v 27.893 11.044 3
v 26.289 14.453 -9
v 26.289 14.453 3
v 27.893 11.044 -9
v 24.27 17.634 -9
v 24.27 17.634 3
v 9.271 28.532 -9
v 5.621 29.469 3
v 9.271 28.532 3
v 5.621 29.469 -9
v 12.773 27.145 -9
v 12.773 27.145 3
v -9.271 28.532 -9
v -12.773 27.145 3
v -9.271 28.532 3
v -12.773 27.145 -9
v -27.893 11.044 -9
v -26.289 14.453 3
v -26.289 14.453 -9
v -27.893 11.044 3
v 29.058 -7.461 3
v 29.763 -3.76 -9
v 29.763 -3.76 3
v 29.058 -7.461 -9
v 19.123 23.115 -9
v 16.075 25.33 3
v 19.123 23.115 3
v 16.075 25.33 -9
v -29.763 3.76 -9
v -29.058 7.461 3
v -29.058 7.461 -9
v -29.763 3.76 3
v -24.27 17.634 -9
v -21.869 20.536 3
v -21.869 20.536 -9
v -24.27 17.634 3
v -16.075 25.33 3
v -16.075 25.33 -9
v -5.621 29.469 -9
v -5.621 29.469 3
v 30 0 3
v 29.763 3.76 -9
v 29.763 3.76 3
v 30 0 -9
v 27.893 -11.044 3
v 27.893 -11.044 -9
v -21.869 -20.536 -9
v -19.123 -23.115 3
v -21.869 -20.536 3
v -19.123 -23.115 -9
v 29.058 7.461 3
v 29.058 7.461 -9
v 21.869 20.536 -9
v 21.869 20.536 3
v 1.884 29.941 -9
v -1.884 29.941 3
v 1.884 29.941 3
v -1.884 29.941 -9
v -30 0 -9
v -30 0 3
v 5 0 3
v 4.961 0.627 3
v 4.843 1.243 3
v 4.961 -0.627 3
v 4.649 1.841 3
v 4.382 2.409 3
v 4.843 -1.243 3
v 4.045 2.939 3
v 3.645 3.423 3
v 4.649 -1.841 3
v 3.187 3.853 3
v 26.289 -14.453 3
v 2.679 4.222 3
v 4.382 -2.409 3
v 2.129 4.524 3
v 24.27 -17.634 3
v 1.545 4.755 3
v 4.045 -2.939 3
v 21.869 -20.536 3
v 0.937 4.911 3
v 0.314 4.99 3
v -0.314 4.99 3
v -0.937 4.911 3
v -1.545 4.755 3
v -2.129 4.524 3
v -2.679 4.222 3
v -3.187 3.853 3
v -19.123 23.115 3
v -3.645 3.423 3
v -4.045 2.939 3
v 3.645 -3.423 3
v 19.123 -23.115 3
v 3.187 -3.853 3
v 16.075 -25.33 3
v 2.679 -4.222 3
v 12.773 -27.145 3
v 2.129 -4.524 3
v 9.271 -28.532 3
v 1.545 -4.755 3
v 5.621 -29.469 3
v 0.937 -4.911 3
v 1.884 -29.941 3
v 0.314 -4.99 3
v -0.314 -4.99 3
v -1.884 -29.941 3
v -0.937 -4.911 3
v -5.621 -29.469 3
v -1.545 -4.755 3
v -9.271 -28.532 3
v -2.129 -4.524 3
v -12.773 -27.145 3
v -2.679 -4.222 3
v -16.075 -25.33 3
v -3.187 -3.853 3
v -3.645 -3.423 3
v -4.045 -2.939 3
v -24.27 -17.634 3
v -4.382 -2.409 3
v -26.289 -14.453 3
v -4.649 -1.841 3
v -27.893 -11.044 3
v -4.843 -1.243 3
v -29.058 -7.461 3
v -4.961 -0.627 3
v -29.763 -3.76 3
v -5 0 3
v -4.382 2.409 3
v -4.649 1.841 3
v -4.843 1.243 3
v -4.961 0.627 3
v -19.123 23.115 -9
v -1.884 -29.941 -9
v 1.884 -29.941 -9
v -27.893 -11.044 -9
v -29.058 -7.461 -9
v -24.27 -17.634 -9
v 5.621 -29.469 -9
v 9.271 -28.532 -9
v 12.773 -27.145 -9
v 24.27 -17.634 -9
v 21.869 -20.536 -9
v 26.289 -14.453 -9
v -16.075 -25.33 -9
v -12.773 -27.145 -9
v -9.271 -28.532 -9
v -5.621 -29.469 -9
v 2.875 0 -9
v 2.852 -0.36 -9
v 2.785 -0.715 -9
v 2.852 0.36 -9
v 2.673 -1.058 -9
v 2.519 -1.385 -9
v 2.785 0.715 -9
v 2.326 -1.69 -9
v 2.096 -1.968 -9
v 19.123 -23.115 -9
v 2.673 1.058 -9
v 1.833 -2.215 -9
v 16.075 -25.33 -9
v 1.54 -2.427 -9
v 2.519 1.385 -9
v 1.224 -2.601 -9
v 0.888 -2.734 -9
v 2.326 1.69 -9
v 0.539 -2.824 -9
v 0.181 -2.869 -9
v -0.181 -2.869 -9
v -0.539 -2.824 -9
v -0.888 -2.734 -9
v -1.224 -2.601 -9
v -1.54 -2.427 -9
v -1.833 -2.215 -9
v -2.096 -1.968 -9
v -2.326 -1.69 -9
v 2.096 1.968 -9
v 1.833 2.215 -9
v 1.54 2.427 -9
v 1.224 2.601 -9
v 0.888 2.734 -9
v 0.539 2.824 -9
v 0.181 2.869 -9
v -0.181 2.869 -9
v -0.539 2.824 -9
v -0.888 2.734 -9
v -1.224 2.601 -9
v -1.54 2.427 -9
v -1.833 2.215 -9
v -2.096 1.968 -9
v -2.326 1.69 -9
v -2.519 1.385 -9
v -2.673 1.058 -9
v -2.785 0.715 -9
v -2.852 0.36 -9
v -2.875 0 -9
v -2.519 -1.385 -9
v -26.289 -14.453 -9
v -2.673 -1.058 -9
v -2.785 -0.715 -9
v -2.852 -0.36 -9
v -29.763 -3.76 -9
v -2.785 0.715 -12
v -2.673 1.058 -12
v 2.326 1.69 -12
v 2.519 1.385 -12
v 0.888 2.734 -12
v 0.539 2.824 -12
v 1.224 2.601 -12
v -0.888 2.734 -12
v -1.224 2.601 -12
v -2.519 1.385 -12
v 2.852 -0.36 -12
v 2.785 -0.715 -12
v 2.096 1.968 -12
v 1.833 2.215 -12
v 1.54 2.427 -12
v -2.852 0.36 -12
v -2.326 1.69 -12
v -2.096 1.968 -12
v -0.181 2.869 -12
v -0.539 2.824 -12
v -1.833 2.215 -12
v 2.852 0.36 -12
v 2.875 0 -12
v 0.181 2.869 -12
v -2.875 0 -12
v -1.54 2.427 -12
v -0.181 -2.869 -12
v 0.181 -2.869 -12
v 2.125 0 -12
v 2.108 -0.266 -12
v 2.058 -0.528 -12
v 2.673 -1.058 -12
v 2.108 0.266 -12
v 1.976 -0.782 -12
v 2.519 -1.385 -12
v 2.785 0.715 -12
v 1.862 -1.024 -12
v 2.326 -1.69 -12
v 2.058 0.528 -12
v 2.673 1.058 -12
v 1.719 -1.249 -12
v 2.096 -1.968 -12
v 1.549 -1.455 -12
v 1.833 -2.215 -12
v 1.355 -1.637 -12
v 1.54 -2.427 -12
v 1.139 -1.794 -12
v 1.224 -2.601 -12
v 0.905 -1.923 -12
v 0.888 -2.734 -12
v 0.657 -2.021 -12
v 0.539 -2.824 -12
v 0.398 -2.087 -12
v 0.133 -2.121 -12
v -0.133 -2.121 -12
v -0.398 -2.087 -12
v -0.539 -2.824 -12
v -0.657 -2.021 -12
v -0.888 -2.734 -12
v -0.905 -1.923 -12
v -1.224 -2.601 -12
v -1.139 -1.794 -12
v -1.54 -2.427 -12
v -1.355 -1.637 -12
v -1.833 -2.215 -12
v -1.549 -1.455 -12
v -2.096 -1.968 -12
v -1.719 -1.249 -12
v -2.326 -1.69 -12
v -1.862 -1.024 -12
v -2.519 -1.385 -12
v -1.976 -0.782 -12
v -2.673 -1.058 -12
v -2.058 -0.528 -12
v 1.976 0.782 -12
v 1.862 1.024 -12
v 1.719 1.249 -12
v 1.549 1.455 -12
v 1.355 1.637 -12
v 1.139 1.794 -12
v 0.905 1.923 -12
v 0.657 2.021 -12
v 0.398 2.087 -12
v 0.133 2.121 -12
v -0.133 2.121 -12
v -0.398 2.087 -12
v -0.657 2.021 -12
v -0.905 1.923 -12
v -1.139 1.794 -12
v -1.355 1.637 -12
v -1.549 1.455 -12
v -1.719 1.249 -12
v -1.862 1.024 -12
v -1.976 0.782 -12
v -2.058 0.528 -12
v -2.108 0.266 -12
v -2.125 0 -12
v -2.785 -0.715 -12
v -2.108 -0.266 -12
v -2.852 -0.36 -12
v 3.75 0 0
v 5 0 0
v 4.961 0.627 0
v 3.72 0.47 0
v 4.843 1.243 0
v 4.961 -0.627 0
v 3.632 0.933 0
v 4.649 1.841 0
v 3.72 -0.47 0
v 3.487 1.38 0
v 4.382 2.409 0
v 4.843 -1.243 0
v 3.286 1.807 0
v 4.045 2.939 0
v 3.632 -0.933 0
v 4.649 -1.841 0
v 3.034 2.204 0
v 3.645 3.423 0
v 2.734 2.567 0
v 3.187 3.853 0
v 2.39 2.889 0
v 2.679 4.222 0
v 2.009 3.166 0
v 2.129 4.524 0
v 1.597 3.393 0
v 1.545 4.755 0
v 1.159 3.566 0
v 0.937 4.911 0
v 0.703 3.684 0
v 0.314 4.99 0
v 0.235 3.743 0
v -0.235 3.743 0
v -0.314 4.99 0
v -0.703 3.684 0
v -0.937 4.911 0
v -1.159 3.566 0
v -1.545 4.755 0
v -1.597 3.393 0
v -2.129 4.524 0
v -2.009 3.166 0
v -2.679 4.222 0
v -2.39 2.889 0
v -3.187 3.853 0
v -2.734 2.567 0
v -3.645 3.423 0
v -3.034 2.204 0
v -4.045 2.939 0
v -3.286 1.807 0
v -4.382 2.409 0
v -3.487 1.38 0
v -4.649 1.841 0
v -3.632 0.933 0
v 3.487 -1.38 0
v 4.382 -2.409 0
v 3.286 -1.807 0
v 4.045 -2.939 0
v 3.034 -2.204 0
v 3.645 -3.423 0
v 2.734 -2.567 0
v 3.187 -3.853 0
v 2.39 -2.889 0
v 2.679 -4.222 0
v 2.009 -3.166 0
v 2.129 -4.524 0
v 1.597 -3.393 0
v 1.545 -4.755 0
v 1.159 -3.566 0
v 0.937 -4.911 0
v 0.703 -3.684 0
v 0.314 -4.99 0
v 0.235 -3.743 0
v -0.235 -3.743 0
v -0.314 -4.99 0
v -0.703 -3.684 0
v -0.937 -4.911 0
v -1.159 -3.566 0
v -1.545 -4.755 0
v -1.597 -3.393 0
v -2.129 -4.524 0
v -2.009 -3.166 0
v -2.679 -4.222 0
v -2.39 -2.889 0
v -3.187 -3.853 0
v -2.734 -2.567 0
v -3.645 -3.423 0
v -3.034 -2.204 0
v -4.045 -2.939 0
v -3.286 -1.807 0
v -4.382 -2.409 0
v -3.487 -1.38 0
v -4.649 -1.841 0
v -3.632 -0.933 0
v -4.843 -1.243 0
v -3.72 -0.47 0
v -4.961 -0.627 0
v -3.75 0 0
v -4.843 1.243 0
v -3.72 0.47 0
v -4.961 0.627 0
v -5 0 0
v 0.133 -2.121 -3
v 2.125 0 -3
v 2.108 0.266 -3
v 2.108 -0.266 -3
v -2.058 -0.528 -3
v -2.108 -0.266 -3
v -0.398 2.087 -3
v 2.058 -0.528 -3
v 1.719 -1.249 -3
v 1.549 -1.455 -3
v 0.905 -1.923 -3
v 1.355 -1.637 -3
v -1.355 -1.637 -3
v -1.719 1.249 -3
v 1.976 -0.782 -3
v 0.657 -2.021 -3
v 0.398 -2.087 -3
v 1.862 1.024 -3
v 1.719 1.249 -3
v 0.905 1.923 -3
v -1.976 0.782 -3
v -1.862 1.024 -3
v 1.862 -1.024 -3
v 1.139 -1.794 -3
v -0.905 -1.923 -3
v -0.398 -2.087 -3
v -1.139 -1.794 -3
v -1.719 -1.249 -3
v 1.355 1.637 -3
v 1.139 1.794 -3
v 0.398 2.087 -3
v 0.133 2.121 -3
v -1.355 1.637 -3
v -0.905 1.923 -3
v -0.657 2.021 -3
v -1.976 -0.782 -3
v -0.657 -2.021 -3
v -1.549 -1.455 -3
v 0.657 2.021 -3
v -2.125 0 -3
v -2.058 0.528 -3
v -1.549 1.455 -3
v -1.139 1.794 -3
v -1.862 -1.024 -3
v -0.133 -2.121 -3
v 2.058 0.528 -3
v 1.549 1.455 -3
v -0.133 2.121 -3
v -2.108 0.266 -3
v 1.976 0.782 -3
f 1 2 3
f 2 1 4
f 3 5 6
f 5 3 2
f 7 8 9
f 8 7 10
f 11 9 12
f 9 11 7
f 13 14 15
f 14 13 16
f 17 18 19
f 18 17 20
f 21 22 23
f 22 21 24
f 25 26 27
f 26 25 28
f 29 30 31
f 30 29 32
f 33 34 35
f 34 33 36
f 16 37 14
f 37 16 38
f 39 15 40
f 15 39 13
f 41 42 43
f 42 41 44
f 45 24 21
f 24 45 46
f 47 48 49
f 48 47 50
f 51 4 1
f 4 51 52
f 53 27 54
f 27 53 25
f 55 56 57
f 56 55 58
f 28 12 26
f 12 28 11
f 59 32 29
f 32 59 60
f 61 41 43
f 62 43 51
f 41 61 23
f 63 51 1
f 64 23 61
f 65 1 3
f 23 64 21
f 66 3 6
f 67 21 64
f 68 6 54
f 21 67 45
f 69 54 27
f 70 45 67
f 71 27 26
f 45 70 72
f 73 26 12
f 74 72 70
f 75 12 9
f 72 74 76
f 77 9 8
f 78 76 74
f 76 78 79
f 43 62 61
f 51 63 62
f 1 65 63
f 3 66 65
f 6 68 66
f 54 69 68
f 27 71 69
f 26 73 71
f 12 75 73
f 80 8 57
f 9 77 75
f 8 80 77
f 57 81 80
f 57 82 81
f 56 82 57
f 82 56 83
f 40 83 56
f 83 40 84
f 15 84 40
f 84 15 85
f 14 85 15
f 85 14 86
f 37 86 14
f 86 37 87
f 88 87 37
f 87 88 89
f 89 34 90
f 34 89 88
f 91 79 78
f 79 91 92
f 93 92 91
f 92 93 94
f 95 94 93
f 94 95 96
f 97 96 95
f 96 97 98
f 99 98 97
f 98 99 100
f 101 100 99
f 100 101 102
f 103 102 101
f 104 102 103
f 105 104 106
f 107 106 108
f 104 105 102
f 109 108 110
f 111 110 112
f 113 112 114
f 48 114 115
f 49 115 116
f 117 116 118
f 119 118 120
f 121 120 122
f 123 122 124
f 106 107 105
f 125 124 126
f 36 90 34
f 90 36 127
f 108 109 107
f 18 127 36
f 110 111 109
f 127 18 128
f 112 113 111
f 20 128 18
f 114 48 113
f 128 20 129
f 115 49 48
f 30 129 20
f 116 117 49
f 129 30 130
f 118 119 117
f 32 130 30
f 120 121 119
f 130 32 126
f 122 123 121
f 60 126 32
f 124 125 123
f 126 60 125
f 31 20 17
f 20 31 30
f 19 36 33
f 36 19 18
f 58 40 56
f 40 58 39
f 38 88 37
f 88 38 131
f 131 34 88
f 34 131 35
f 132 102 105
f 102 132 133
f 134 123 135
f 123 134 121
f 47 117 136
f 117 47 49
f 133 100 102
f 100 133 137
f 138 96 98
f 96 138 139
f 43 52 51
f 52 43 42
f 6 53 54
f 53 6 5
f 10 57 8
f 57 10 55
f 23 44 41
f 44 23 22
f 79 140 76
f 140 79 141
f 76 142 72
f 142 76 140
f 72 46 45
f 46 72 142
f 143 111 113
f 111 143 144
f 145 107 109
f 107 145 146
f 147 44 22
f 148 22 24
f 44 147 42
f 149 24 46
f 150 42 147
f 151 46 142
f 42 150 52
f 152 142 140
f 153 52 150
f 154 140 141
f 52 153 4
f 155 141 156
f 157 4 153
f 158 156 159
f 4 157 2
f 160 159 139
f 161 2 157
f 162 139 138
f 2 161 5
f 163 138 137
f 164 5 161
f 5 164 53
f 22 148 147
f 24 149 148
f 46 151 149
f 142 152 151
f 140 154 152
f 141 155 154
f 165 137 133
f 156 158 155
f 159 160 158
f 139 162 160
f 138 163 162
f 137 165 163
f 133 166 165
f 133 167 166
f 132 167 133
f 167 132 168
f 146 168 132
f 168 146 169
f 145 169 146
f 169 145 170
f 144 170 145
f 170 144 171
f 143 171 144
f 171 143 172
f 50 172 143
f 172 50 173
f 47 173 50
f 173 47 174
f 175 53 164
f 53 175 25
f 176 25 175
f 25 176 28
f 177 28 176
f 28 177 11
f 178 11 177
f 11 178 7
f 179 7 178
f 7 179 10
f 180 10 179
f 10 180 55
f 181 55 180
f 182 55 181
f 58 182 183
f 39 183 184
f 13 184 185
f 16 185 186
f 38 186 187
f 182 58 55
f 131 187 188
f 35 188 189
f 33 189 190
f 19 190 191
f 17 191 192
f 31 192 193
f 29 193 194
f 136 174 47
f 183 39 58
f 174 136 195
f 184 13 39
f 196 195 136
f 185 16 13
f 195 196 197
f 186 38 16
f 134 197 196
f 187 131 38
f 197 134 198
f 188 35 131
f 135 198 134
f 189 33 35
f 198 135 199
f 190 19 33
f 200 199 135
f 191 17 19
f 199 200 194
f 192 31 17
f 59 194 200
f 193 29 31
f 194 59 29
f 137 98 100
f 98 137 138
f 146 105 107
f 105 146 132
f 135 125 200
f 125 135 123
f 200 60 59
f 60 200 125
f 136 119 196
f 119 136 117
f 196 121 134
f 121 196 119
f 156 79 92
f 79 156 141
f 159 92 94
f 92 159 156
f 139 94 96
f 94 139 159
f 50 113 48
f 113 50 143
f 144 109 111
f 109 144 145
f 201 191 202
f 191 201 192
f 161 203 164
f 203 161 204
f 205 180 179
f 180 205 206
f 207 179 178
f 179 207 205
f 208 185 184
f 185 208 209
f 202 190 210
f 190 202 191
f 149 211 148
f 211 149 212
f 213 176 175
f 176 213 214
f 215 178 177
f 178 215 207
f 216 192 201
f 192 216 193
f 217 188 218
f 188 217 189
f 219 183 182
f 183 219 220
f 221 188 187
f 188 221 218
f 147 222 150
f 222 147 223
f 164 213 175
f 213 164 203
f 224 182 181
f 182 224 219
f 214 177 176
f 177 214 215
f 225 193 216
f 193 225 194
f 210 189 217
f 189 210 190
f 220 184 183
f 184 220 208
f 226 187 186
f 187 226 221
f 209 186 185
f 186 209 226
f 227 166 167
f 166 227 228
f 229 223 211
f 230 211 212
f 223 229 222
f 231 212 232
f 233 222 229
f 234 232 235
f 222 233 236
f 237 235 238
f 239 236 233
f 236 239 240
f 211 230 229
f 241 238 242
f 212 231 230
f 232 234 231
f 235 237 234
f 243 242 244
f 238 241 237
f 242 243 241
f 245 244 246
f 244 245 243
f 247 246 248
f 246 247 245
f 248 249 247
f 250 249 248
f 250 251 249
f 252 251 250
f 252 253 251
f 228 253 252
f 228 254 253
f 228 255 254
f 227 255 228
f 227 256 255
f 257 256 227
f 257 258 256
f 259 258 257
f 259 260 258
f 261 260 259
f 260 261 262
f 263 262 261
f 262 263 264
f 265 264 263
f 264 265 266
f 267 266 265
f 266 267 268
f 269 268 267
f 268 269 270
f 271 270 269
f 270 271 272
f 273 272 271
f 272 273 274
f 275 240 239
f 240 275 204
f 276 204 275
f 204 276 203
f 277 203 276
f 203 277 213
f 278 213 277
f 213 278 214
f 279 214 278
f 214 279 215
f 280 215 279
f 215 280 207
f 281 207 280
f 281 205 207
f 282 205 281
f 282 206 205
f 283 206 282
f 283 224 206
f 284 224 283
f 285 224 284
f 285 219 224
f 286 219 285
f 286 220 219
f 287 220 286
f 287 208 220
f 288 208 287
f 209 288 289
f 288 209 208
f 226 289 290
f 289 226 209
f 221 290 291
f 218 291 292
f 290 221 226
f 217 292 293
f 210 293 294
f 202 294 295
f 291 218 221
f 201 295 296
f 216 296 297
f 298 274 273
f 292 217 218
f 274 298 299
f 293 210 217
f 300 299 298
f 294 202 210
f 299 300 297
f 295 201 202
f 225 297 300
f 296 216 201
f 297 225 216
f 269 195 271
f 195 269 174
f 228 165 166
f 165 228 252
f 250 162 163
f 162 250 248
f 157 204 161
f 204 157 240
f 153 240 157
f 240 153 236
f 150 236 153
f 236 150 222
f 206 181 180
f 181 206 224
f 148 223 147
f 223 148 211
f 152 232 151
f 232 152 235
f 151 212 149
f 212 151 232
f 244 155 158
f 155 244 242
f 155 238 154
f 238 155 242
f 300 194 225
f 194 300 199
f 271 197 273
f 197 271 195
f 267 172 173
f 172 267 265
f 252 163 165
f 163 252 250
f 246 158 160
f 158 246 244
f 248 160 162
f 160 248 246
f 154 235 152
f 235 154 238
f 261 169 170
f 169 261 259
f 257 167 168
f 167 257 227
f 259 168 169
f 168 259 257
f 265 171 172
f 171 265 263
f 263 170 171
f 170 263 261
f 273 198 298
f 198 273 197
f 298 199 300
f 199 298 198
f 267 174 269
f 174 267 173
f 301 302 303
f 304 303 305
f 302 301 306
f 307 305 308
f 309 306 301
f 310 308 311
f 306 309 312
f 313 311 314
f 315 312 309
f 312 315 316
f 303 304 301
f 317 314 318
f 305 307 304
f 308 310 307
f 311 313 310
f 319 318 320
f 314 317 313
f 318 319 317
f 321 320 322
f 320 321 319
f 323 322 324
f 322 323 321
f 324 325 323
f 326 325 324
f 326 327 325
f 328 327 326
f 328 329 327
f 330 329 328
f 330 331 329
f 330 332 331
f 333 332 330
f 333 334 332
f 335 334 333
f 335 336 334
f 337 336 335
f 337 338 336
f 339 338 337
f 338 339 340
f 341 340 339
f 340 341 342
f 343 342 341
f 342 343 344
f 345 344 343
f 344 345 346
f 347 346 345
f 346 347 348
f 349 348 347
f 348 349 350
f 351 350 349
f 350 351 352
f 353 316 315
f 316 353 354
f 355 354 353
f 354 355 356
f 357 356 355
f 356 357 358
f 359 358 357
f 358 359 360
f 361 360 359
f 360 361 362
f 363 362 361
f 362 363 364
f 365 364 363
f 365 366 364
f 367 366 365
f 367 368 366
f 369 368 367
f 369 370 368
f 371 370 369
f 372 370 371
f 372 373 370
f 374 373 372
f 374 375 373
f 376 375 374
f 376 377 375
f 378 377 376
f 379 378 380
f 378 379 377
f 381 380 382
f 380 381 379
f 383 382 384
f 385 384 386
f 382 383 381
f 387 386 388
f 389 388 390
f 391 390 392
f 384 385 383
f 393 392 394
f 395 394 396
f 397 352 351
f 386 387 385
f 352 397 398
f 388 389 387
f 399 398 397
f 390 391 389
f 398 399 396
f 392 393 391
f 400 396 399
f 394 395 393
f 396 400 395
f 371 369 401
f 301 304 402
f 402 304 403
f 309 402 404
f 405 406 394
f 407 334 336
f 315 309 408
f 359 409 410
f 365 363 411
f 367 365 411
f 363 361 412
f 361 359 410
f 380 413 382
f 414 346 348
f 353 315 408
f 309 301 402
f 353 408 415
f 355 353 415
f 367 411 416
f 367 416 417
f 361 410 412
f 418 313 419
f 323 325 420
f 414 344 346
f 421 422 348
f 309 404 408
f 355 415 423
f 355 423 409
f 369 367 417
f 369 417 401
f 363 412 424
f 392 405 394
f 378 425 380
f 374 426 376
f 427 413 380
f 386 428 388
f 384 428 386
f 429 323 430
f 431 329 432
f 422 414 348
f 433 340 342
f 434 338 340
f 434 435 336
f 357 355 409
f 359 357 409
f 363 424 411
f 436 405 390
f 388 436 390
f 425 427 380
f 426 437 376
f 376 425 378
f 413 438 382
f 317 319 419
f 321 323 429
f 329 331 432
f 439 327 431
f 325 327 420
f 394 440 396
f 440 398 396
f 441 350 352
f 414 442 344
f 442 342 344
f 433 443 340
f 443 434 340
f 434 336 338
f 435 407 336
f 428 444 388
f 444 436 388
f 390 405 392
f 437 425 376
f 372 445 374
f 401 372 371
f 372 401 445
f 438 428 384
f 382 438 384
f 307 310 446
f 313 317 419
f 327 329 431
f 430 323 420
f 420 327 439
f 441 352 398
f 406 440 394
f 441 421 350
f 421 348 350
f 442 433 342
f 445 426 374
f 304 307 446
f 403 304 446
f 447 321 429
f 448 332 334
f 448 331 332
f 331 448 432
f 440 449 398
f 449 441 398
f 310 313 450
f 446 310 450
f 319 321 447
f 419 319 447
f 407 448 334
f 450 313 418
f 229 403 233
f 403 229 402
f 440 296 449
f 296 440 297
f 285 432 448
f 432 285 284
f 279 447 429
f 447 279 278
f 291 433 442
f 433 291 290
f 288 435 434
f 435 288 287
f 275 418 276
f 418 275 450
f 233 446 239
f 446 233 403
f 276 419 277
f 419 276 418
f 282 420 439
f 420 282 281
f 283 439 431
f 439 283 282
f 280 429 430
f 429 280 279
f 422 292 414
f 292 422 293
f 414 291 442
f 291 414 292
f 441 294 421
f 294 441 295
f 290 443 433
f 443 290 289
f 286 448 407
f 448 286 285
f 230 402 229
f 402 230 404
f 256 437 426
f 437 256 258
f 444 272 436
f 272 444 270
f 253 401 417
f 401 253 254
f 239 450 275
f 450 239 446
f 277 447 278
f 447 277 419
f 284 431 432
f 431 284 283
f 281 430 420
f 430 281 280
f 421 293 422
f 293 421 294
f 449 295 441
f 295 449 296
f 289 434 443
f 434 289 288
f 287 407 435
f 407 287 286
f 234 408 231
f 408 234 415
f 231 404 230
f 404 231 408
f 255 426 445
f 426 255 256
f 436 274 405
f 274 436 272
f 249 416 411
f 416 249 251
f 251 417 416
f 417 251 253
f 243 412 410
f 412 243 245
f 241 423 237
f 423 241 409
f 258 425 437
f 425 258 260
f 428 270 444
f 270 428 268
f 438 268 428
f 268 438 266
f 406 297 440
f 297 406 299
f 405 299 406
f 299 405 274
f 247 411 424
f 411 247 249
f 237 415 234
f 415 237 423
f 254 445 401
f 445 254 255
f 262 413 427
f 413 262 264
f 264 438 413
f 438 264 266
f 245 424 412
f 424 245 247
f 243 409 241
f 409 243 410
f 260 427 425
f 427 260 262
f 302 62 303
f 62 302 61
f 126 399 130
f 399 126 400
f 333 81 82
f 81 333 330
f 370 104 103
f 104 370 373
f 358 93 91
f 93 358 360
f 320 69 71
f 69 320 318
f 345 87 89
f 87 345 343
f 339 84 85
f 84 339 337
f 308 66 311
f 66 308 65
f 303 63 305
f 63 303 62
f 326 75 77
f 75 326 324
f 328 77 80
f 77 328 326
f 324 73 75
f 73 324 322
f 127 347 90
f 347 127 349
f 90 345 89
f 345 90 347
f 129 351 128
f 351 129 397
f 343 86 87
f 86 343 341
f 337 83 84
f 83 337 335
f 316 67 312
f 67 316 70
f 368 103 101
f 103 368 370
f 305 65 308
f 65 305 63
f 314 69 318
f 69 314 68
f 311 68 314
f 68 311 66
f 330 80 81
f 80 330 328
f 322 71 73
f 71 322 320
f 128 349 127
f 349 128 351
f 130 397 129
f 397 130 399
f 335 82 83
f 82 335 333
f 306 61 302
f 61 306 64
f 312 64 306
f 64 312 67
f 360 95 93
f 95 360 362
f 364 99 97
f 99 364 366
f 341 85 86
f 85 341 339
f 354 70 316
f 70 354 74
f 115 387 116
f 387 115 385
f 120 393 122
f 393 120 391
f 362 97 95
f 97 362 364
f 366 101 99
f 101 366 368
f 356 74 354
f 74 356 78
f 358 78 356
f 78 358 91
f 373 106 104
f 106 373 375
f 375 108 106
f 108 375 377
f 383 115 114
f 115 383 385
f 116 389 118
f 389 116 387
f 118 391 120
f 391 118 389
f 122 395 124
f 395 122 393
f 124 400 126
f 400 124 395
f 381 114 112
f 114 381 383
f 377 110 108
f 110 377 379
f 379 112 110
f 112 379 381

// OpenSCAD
$fn = 50;


difference() {
	union() {
		translate(v = [0, 0, -9.0000000000]) {
			cylinder(h = 12, r = 30.0000000000);
		}
		#translate(v = [0, 0, -12.0000000000]) {
			cylinder(h = 12, r = 2.8750000000);
		}
	}
	union() {
		translate(v = [0, 0, 0]) {
			rotate(a = [0, 0, 0]) {
				difference() {
					union() {
						translate(v = [0, 0, -12.0000000000]) {
							cylinder(h = 12, r = 2.0000000000);
						}
						translate(v = [0, 0, -3]) {
							cylinder(h = 3, r1 = 2.1250000000, r2 = 3.7500000000);
						}
						translate(v = [0, 0, -12.0000000000]) {
							cylinder(h = 12, r = 2.1250000000);
						}
						translate(v = [0, 0, -12.0000000000]) {
							cylinder(h = 12, r = 2.0000000000);
						}
					}
					union();
				}
			}
		}
		#cylinder(h = 3, r = 5.0000000000);
	}
}
